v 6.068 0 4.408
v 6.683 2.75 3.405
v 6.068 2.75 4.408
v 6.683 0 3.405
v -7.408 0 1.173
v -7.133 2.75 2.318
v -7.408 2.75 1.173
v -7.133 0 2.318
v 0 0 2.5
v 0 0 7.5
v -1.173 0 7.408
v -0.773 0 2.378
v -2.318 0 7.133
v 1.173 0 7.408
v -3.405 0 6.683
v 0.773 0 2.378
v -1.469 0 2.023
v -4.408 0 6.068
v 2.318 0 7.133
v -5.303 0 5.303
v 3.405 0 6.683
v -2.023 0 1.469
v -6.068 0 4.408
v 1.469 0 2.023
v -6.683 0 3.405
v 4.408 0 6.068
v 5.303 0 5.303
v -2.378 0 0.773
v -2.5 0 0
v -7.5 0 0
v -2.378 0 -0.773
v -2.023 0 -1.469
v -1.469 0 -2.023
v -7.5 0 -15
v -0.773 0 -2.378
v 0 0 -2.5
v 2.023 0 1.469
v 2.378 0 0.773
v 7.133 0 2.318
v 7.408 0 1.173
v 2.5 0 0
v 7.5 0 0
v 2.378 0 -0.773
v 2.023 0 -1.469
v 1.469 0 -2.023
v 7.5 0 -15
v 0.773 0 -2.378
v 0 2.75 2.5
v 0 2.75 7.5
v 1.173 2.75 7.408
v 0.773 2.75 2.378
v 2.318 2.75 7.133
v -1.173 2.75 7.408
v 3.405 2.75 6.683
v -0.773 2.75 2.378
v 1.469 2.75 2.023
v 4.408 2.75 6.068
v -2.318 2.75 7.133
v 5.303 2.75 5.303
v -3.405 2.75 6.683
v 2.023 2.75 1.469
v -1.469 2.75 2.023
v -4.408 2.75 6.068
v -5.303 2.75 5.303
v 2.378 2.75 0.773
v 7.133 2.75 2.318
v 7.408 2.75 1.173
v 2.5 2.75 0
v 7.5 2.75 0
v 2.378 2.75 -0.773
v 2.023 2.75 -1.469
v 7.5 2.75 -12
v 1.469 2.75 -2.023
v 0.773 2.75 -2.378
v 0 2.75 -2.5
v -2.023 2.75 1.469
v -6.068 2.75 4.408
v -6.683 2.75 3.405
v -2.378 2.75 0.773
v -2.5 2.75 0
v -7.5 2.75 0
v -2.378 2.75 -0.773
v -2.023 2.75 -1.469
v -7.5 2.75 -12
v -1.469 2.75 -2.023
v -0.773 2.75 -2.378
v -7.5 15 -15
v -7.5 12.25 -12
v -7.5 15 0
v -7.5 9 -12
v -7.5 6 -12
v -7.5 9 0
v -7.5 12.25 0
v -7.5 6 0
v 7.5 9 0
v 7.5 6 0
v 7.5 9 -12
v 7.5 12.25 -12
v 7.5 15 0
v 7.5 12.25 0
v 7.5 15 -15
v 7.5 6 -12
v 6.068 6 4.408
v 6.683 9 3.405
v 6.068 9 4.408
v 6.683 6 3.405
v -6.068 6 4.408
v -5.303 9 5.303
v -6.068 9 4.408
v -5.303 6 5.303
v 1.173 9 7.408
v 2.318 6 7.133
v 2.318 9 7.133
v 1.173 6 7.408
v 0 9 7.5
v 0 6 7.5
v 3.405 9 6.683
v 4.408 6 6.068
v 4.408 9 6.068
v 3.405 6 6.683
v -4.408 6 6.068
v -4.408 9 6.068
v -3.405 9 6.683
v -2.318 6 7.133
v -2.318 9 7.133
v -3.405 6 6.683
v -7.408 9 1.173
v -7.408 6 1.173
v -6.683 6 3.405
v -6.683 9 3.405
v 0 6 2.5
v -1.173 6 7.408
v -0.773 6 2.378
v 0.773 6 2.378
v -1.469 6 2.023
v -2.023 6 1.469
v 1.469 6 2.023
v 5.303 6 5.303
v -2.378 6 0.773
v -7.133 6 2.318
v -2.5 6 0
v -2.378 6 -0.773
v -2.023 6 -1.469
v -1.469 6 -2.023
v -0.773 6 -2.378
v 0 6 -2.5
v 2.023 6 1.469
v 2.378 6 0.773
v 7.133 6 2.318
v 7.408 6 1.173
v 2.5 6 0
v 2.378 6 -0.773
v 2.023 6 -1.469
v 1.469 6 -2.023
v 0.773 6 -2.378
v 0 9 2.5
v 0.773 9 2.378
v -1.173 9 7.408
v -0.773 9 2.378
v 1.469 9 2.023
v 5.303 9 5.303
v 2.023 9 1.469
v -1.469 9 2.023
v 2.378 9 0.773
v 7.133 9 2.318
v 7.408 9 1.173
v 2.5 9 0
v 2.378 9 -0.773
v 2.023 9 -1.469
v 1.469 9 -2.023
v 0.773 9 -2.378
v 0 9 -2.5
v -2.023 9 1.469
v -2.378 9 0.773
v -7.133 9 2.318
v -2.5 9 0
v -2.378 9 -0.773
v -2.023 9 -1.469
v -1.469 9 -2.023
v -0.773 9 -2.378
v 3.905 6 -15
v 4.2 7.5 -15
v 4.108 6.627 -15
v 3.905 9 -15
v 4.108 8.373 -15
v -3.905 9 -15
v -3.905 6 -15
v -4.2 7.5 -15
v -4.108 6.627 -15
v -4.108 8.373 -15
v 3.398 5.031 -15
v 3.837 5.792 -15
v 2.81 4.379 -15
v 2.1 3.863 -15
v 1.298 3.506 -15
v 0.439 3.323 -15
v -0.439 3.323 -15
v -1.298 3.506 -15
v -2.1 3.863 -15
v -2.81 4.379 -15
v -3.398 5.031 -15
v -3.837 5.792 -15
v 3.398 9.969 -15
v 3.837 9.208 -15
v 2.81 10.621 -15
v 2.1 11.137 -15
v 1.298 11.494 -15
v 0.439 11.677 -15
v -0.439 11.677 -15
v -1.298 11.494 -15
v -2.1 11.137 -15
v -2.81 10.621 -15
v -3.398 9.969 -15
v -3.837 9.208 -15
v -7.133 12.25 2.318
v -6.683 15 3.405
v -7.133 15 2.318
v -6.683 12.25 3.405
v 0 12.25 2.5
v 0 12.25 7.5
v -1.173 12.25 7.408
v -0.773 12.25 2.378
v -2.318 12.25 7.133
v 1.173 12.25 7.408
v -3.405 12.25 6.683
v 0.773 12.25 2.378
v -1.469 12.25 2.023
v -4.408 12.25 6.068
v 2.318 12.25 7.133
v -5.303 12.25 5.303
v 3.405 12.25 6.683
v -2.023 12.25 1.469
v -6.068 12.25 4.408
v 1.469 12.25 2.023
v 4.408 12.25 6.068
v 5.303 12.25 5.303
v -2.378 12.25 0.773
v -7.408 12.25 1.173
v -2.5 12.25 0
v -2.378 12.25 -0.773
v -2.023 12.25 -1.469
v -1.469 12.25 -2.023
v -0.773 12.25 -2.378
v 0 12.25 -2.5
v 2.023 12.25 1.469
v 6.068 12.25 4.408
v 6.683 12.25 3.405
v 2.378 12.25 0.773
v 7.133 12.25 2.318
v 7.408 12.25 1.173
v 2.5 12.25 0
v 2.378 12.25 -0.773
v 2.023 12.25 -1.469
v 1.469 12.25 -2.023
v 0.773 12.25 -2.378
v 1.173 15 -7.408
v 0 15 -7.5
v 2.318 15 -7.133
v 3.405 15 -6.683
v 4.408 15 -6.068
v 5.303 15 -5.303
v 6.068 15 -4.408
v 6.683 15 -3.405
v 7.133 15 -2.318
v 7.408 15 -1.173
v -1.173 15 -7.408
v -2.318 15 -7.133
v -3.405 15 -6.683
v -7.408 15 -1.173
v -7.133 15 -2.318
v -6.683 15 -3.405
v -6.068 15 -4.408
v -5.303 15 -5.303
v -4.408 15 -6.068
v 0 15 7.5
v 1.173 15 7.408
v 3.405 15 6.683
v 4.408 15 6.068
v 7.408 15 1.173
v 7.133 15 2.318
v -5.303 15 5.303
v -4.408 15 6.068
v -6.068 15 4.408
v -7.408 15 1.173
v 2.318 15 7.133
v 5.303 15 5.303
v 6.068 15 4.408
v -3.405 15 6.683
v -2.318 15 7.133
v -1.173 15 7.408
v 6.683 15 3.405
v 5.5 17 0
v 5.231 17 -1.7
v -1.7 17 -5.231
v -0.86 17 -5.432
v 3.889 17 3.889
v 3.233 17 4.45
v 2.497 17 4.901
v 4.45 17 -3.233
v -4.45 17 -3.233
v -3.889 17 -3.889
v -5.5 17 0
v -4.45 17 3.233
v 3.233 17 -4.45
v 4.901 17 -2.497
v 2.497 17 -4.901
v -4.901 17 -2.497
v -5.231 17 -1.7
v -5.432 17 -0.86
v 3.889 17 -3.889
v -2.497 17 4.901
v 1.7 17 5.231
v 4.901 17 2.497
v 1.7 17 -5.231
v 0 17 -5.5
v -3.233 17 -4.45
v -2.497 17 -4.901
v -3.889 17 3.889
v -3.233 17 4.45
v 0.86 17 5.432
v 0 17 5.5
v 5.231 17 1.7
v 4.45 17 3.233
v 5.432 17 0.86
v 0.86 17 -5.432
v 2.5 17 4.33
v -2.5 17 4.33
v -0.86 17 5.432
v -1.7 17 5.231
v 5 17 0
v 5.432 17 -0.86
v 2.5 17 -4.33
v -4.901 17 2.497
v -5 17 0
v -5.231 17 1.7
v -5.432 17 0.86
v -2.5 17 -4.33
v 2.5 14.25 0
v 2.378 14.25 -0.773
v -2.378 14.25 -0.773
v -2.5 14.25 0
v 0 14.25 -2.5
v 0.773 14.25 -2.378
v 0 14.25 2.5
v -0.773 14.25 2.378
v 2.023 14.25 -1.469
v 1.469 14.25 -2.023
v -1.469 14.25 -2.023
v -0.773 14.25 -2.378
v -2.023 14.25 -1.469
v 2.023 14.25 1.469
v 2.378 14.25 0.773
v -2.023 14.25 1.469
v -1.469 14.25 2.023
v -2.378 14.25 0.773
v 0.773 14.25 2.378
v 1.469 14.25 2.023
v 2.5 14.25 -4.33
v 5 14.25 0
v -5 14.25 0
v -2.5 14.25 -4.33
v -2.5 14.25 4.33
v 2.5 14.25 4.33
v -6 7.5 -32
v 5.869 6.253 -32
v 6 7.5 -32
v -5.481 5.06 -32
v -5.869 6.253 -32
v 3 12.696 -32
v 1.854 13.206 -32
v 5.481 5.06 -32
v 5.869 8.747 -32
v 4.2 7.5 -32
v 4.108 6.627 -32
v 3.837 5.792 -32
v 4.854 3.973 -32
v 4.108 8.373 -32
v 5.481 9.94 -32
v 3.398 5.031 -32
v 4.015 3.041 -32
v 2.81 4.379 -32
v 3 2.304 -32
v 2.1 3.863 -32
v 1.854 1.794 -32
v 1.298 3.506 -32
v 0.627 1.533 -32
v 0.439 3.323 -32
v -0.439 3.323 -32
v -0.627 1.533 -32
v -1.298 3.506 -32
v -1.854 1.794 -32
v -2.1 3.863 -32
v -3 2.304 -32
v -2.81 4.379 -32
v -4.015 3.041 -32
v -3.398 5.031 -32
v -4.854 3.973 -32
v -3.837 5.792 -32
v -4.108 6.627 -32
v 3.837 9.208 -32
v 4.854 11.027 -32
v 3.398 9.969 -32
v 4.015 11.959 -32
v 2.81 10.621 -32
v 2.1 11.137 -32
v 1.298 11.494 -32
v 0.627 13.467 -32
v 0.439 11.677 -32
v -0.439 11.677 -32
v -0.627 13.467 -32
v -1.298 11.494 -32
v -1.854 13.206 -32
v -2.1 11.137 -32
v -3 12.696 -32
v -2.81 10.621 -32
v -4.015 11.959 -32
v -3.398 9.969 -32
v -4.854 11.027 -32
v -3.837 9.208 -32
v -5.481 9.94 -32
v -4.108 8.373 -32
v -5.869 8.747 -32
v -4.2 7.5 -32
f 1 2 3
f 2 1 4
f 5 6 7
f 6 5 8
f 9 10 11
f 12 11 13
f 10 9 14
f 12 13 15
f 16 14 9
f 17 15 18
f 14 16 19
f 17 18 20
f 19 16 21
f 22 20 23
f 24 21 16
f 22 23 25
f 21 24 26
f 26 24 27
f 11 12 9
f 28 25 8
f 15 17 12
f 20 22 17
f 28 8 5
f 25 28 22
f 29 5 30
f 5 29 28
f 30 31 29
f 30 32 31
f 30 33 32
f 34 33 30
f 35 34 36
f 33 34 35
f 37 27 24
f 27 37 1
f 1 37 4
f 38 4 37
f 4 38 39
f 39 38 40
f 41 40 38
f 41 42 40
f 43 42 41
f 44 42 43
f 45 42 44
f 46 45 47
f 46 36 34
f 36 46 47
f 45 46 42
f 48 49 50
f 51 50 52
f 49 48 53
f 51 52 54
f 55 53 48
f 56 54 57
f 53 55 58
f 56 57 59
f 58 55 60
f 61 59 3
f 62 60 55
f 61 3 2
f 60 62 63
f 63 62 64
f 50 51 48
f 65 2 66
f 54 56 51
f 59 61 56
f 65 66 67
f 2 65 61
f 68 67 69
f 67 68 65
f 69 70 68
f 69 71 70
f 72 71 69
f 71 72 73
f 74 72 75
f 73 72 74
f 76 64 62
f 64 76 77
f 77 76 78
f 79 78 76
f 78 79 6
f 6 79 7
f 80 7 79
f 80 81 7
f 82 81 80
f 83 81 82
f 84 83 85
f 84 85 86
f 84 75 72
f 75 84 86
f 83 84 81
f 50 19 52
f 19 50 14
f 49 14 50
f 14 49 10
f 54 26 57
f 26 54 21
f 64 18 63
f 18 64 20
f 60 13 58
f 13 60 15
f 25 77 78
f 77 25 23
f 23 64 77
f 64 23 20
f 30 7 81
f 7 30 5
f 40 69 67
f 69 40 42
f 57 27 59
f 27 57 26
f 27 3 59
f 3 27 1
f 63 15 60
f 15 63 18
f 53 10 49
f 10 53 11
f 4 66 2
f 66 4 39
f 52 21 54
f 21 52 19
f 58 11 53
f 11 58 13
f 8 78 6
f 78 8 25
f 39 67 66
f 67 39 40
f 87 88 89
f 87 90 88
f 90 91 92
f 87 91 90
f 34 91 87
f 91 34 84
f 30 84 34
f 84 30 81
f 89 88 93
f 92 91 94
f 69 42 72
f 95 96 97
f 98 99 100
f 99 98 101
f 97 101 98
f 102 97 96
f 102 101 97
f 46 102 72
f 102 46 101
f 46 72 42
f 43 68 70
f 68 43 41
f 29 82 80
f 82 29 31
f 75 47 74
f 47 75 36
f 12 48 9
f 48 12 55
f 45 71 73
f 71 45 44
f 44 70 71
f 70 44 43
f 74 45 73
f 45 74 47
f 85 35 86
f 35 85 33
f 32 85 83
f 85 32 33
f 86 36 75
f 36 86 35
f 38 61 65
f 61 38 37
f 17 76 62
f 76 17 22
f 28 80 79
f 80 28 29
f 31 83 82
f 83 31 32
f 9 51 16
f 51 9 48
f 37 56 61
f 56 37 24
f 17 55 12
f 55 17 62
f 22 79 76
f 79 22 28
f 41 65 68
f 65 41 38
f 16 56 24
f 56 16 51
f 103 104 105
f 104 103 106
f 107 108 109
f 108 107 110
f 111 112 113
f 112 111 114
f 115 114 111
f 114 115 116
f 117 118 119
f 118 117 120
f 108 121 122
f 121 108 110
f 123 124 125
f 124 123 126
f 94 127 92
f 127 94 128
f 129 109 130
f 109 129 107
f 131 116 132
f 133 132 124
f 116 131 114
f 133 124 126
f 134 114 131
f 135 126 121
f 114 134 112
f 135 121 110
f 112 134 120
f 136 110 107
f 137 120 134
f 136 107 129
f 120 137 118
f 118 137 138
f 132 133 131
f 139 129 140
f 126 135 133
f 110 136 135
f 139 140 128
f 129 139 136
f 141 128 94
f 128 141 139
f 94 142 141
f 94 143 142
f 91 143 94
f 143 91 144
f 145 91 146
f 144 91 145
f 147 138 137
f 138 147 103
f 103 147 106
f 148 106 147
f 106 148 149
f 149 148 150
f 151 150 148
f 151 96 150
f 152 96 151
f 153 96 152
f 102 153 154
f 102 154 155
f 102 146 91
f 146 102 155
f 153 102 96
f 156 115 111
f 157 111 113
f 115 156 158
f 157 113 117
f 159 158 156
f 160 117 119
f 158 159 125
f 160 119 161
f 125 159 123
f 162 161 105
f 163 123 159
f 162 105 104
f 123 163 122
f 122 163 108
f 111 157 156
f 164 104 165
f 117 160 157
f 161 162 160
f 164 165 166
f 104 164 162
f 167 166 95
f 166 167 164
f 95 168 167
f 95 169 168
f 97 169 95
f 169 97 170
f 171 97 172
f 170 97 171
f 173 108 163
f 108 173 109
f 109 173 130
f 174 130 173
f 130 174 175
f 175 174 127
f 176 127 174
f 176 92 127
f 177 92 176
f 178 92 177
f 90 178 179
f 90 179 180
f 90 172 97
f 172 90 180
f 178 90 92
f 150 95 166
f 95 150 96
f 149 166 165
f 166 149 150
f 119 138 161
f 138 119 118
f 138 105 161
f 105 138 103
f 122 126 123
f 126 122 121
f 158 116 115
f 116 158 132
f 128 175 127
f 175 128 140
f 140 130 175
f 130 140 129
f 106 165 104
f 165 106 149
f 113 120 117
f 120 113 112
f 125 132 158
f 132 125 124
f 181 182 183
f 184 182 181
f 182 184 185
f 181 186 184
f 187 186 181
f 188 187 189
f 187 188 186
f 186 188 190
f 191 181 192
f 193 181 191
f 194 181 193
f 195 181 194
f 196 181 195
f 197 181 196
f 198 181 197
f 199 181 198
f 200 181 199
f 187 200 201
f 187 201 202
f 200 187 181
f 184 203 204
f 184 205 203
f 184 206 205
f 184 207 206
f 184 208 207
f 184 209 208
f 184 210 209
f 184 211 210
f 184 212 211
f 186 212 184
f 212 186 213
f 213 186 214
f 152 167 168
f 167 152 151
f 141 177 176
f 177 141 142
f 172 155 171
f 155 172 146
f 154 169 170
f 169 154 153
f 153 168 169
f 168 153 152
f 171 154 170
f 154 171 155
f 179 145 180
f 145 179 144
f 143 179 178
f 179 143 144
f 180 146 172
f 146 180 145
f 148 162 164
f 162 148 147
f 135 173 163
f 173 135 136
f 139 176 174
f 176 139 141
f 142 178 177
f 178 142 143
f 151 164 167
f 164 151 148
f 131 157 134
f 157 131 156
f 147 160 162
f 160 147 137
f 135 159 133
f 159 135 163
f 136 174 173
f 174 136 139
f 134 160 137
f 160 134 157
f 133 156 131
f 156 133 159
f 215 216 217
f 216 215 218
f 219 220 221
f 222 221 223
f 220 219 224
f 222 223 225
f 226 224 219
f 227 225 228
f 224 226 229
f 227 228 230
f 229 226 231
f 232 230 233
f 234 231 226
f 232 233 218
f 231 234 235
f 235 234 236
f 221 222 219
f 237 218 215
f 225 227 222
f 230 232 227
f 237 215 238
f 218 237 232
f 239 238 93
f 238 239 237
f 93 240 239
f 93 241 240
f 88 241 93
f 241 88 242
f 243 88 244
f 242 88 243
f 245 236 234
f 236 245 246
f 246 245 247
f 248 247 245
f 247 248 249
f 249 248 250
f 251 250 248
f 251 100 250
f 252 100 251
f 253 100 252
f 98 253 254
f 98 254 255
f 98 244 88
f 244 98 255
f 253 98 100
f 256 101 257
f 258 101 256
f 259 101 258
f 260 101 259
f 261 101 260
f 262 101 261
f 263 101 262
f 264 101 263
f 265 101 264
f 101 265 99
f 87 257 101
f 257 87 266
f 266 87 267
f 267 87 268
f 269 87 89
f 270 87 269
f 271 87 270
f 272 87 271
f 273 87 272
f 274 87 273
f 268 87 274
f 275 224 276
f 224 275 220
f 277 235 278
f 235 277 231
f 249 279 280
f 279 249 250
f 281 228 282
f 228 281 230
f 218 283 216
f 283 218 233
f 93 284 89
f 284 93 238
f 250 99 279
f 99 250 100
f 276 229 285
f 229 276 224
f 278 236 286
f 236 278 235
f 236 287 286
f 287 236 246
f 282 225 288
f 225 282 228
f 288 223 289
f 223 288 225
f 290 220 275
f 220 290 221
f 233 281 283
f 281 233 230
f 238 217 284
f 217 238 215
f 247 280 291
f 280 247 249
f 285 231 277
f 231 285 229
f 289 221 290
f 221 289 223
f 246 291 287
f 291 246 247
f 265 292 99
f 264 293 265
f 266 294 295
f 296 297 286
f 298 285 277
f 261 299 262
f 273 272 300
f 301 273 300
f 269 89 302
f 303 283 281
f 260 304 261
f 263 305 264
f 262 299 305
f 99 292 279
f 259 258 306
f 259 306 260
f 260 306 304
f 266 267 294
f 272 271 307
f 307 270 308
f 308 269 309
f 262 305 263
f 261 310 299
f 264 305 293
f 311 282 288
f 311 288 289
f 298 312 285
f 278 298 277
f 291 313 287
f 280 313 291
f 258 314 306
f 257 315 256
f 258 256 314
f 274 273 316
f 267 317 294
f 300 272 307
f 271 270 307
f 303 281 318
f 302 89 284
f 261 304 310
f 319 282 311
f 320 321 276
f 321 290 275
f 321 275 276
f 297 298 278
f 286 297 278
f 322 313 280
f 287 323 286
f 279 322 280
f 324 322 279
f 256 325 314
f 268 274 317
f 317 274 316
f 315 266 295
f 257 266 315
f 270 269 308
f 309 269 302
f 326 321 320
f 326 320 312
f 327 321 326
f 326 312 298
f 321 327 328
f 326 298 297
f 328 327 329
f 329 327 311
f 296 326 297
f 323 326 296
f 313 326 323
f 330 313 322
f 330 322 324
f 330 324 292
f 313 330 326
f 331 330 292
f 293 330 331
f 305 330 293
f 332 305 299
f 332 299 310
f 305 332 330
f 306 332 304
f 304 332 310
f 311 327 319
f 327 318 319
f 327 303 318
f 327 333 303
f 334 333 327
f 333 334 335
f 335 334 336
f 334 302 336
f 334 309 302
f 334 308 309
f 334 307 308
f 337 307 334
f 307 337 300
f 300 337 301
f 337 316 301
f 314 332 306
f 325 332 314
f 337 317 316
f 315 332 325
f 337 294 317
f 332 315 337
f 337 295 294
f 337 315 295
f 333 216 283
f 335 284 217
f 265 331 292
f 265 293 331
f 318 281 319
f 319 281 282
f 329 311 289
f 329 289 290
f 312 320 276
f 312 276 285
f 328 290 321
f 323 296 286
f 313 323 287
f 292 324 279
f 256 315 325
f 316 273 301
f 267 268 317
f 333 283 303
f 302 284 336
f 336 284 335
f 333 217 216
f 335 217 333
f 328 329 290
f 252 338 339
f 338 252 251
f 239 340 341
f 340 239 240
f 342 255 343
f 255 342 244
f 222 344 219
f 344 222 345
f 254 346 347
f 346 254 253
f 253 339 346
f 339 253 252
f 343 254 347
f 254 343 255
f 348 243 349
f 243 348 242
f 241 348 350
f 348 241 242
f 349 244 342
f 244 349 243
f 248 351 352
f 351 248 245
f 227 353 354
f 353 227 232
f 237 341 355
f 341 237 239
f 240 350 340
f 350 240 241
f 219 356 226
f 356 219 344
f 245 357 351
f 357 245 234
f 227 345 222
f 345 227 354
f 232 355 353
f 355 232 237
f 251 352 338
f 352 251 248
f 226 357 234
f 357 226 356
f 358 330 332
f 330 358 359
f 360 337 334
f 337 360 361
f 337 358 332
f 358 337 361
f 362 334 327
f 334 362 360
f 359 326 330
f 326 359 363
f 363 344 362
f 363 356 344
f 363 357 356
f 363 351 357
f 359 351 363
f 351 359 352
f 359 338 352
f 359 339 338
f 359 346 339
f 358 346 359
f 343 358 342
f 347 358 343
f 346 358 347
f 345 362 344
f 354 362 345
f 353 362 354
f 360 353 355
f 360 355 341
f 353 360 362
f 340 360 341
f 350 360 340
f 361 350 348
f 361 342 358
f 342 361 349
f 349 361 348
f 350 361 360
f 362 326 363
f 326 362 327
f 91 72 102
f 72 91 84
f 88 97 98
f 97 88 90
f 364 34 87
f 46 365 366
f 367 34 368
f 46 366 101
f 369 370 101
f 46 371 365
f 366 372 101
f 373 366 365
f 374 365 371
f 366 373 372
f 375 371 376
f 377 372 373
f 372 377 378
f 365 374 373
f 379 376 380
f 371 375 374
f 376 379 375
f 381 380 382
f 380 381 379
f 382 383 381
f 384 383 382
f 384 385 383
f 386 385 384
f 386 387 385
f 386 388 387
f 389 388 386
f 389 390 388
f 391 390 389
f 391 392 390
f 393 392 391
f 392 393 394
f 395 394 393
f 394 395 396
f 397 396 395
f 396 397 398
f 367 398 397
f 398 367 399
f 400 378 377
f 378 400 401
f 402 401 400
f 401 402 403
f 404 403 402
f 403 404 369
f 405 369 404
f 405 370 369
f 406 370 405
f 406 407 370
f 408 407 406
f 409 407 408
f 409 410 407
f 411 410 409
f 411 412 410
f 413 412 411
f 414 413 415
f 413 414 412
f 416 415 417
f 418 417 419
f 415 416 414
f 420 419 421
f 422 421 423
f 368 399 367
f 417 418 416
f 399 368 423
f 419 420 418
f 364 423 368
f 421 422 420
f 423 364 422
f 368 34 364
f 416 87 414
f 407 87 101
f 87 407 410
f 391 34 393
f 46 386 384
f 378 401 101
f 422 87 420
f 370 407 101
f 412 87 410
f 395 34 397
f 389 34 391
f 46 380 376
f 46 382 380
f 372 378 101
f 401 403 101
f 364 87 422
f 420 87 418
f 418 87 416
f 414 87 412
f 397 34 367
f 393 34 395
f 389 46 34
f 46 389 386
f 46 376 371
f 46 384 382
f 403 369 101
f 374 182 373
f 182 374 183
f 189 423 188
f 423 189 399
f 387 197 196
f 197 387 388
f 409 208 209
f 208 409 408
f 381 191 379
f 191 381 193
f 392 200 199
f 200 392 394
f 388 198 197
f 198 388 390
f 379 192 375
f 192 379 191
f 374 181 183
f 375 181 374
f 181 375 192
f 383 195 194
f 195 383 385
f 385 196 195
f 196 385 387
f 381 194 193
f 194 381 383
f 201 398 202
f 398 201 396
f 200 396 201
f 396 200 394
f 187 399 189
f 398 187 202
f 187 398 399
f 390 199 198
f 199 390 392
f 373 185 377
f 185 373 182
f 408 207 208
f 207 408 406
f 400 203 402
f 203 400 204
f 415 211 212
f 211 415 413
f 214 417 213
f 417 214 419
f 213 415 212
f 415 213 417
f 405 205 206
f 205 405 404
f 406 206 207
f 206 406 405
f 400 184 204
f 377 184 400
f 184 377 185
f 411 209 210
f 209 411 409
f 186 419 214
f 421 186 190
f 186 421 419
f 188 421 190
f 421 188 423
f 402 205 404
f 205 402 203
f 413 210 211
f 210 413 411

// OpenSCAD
rotate([-90,0,0]){
difference(){
union(){
cylinder(r=7.5,h=2.75,$fn=40);
translate([-7.5,0,0])cube([15,15,2.75]);
}
cylinder(d=5,h=3,$fn=20);
}

translate([0,0,6])
difference(){
union(){
cylinder(r=7.5,h=3,$fn=40);
translate([-7.5,0,0])cube([15,15,3]);
}
cylinder(d=5,h=3,$fn=20);
}

translate([0,0,12.25])
difference(){
union(){
cylinder(r=7.5,h=2.75,$fn=40);
translate([0,0,2.75])cylinder(r1=7.5,r2=5.5,h=2,$fn=40);    
translate([-7.5,0,0])cube([15,15,2.75]);
}
cylinder(d=5,h=6,$fn=20);
translate([0,0,2])cylinder(d=10,h=3,$fn=6);
}
difference(){
hull(){
translate([-7.5,12,0])cube([15,3,15]);
translate([0,12,7.5])rotate([-90,0,0])
cylinder(d=12,h=20,$fn=30);
}
translate([0,15,7.5])rotate([-90,0,0])
cylinder(d=8.4,h=20,$fn=30);
}
}
